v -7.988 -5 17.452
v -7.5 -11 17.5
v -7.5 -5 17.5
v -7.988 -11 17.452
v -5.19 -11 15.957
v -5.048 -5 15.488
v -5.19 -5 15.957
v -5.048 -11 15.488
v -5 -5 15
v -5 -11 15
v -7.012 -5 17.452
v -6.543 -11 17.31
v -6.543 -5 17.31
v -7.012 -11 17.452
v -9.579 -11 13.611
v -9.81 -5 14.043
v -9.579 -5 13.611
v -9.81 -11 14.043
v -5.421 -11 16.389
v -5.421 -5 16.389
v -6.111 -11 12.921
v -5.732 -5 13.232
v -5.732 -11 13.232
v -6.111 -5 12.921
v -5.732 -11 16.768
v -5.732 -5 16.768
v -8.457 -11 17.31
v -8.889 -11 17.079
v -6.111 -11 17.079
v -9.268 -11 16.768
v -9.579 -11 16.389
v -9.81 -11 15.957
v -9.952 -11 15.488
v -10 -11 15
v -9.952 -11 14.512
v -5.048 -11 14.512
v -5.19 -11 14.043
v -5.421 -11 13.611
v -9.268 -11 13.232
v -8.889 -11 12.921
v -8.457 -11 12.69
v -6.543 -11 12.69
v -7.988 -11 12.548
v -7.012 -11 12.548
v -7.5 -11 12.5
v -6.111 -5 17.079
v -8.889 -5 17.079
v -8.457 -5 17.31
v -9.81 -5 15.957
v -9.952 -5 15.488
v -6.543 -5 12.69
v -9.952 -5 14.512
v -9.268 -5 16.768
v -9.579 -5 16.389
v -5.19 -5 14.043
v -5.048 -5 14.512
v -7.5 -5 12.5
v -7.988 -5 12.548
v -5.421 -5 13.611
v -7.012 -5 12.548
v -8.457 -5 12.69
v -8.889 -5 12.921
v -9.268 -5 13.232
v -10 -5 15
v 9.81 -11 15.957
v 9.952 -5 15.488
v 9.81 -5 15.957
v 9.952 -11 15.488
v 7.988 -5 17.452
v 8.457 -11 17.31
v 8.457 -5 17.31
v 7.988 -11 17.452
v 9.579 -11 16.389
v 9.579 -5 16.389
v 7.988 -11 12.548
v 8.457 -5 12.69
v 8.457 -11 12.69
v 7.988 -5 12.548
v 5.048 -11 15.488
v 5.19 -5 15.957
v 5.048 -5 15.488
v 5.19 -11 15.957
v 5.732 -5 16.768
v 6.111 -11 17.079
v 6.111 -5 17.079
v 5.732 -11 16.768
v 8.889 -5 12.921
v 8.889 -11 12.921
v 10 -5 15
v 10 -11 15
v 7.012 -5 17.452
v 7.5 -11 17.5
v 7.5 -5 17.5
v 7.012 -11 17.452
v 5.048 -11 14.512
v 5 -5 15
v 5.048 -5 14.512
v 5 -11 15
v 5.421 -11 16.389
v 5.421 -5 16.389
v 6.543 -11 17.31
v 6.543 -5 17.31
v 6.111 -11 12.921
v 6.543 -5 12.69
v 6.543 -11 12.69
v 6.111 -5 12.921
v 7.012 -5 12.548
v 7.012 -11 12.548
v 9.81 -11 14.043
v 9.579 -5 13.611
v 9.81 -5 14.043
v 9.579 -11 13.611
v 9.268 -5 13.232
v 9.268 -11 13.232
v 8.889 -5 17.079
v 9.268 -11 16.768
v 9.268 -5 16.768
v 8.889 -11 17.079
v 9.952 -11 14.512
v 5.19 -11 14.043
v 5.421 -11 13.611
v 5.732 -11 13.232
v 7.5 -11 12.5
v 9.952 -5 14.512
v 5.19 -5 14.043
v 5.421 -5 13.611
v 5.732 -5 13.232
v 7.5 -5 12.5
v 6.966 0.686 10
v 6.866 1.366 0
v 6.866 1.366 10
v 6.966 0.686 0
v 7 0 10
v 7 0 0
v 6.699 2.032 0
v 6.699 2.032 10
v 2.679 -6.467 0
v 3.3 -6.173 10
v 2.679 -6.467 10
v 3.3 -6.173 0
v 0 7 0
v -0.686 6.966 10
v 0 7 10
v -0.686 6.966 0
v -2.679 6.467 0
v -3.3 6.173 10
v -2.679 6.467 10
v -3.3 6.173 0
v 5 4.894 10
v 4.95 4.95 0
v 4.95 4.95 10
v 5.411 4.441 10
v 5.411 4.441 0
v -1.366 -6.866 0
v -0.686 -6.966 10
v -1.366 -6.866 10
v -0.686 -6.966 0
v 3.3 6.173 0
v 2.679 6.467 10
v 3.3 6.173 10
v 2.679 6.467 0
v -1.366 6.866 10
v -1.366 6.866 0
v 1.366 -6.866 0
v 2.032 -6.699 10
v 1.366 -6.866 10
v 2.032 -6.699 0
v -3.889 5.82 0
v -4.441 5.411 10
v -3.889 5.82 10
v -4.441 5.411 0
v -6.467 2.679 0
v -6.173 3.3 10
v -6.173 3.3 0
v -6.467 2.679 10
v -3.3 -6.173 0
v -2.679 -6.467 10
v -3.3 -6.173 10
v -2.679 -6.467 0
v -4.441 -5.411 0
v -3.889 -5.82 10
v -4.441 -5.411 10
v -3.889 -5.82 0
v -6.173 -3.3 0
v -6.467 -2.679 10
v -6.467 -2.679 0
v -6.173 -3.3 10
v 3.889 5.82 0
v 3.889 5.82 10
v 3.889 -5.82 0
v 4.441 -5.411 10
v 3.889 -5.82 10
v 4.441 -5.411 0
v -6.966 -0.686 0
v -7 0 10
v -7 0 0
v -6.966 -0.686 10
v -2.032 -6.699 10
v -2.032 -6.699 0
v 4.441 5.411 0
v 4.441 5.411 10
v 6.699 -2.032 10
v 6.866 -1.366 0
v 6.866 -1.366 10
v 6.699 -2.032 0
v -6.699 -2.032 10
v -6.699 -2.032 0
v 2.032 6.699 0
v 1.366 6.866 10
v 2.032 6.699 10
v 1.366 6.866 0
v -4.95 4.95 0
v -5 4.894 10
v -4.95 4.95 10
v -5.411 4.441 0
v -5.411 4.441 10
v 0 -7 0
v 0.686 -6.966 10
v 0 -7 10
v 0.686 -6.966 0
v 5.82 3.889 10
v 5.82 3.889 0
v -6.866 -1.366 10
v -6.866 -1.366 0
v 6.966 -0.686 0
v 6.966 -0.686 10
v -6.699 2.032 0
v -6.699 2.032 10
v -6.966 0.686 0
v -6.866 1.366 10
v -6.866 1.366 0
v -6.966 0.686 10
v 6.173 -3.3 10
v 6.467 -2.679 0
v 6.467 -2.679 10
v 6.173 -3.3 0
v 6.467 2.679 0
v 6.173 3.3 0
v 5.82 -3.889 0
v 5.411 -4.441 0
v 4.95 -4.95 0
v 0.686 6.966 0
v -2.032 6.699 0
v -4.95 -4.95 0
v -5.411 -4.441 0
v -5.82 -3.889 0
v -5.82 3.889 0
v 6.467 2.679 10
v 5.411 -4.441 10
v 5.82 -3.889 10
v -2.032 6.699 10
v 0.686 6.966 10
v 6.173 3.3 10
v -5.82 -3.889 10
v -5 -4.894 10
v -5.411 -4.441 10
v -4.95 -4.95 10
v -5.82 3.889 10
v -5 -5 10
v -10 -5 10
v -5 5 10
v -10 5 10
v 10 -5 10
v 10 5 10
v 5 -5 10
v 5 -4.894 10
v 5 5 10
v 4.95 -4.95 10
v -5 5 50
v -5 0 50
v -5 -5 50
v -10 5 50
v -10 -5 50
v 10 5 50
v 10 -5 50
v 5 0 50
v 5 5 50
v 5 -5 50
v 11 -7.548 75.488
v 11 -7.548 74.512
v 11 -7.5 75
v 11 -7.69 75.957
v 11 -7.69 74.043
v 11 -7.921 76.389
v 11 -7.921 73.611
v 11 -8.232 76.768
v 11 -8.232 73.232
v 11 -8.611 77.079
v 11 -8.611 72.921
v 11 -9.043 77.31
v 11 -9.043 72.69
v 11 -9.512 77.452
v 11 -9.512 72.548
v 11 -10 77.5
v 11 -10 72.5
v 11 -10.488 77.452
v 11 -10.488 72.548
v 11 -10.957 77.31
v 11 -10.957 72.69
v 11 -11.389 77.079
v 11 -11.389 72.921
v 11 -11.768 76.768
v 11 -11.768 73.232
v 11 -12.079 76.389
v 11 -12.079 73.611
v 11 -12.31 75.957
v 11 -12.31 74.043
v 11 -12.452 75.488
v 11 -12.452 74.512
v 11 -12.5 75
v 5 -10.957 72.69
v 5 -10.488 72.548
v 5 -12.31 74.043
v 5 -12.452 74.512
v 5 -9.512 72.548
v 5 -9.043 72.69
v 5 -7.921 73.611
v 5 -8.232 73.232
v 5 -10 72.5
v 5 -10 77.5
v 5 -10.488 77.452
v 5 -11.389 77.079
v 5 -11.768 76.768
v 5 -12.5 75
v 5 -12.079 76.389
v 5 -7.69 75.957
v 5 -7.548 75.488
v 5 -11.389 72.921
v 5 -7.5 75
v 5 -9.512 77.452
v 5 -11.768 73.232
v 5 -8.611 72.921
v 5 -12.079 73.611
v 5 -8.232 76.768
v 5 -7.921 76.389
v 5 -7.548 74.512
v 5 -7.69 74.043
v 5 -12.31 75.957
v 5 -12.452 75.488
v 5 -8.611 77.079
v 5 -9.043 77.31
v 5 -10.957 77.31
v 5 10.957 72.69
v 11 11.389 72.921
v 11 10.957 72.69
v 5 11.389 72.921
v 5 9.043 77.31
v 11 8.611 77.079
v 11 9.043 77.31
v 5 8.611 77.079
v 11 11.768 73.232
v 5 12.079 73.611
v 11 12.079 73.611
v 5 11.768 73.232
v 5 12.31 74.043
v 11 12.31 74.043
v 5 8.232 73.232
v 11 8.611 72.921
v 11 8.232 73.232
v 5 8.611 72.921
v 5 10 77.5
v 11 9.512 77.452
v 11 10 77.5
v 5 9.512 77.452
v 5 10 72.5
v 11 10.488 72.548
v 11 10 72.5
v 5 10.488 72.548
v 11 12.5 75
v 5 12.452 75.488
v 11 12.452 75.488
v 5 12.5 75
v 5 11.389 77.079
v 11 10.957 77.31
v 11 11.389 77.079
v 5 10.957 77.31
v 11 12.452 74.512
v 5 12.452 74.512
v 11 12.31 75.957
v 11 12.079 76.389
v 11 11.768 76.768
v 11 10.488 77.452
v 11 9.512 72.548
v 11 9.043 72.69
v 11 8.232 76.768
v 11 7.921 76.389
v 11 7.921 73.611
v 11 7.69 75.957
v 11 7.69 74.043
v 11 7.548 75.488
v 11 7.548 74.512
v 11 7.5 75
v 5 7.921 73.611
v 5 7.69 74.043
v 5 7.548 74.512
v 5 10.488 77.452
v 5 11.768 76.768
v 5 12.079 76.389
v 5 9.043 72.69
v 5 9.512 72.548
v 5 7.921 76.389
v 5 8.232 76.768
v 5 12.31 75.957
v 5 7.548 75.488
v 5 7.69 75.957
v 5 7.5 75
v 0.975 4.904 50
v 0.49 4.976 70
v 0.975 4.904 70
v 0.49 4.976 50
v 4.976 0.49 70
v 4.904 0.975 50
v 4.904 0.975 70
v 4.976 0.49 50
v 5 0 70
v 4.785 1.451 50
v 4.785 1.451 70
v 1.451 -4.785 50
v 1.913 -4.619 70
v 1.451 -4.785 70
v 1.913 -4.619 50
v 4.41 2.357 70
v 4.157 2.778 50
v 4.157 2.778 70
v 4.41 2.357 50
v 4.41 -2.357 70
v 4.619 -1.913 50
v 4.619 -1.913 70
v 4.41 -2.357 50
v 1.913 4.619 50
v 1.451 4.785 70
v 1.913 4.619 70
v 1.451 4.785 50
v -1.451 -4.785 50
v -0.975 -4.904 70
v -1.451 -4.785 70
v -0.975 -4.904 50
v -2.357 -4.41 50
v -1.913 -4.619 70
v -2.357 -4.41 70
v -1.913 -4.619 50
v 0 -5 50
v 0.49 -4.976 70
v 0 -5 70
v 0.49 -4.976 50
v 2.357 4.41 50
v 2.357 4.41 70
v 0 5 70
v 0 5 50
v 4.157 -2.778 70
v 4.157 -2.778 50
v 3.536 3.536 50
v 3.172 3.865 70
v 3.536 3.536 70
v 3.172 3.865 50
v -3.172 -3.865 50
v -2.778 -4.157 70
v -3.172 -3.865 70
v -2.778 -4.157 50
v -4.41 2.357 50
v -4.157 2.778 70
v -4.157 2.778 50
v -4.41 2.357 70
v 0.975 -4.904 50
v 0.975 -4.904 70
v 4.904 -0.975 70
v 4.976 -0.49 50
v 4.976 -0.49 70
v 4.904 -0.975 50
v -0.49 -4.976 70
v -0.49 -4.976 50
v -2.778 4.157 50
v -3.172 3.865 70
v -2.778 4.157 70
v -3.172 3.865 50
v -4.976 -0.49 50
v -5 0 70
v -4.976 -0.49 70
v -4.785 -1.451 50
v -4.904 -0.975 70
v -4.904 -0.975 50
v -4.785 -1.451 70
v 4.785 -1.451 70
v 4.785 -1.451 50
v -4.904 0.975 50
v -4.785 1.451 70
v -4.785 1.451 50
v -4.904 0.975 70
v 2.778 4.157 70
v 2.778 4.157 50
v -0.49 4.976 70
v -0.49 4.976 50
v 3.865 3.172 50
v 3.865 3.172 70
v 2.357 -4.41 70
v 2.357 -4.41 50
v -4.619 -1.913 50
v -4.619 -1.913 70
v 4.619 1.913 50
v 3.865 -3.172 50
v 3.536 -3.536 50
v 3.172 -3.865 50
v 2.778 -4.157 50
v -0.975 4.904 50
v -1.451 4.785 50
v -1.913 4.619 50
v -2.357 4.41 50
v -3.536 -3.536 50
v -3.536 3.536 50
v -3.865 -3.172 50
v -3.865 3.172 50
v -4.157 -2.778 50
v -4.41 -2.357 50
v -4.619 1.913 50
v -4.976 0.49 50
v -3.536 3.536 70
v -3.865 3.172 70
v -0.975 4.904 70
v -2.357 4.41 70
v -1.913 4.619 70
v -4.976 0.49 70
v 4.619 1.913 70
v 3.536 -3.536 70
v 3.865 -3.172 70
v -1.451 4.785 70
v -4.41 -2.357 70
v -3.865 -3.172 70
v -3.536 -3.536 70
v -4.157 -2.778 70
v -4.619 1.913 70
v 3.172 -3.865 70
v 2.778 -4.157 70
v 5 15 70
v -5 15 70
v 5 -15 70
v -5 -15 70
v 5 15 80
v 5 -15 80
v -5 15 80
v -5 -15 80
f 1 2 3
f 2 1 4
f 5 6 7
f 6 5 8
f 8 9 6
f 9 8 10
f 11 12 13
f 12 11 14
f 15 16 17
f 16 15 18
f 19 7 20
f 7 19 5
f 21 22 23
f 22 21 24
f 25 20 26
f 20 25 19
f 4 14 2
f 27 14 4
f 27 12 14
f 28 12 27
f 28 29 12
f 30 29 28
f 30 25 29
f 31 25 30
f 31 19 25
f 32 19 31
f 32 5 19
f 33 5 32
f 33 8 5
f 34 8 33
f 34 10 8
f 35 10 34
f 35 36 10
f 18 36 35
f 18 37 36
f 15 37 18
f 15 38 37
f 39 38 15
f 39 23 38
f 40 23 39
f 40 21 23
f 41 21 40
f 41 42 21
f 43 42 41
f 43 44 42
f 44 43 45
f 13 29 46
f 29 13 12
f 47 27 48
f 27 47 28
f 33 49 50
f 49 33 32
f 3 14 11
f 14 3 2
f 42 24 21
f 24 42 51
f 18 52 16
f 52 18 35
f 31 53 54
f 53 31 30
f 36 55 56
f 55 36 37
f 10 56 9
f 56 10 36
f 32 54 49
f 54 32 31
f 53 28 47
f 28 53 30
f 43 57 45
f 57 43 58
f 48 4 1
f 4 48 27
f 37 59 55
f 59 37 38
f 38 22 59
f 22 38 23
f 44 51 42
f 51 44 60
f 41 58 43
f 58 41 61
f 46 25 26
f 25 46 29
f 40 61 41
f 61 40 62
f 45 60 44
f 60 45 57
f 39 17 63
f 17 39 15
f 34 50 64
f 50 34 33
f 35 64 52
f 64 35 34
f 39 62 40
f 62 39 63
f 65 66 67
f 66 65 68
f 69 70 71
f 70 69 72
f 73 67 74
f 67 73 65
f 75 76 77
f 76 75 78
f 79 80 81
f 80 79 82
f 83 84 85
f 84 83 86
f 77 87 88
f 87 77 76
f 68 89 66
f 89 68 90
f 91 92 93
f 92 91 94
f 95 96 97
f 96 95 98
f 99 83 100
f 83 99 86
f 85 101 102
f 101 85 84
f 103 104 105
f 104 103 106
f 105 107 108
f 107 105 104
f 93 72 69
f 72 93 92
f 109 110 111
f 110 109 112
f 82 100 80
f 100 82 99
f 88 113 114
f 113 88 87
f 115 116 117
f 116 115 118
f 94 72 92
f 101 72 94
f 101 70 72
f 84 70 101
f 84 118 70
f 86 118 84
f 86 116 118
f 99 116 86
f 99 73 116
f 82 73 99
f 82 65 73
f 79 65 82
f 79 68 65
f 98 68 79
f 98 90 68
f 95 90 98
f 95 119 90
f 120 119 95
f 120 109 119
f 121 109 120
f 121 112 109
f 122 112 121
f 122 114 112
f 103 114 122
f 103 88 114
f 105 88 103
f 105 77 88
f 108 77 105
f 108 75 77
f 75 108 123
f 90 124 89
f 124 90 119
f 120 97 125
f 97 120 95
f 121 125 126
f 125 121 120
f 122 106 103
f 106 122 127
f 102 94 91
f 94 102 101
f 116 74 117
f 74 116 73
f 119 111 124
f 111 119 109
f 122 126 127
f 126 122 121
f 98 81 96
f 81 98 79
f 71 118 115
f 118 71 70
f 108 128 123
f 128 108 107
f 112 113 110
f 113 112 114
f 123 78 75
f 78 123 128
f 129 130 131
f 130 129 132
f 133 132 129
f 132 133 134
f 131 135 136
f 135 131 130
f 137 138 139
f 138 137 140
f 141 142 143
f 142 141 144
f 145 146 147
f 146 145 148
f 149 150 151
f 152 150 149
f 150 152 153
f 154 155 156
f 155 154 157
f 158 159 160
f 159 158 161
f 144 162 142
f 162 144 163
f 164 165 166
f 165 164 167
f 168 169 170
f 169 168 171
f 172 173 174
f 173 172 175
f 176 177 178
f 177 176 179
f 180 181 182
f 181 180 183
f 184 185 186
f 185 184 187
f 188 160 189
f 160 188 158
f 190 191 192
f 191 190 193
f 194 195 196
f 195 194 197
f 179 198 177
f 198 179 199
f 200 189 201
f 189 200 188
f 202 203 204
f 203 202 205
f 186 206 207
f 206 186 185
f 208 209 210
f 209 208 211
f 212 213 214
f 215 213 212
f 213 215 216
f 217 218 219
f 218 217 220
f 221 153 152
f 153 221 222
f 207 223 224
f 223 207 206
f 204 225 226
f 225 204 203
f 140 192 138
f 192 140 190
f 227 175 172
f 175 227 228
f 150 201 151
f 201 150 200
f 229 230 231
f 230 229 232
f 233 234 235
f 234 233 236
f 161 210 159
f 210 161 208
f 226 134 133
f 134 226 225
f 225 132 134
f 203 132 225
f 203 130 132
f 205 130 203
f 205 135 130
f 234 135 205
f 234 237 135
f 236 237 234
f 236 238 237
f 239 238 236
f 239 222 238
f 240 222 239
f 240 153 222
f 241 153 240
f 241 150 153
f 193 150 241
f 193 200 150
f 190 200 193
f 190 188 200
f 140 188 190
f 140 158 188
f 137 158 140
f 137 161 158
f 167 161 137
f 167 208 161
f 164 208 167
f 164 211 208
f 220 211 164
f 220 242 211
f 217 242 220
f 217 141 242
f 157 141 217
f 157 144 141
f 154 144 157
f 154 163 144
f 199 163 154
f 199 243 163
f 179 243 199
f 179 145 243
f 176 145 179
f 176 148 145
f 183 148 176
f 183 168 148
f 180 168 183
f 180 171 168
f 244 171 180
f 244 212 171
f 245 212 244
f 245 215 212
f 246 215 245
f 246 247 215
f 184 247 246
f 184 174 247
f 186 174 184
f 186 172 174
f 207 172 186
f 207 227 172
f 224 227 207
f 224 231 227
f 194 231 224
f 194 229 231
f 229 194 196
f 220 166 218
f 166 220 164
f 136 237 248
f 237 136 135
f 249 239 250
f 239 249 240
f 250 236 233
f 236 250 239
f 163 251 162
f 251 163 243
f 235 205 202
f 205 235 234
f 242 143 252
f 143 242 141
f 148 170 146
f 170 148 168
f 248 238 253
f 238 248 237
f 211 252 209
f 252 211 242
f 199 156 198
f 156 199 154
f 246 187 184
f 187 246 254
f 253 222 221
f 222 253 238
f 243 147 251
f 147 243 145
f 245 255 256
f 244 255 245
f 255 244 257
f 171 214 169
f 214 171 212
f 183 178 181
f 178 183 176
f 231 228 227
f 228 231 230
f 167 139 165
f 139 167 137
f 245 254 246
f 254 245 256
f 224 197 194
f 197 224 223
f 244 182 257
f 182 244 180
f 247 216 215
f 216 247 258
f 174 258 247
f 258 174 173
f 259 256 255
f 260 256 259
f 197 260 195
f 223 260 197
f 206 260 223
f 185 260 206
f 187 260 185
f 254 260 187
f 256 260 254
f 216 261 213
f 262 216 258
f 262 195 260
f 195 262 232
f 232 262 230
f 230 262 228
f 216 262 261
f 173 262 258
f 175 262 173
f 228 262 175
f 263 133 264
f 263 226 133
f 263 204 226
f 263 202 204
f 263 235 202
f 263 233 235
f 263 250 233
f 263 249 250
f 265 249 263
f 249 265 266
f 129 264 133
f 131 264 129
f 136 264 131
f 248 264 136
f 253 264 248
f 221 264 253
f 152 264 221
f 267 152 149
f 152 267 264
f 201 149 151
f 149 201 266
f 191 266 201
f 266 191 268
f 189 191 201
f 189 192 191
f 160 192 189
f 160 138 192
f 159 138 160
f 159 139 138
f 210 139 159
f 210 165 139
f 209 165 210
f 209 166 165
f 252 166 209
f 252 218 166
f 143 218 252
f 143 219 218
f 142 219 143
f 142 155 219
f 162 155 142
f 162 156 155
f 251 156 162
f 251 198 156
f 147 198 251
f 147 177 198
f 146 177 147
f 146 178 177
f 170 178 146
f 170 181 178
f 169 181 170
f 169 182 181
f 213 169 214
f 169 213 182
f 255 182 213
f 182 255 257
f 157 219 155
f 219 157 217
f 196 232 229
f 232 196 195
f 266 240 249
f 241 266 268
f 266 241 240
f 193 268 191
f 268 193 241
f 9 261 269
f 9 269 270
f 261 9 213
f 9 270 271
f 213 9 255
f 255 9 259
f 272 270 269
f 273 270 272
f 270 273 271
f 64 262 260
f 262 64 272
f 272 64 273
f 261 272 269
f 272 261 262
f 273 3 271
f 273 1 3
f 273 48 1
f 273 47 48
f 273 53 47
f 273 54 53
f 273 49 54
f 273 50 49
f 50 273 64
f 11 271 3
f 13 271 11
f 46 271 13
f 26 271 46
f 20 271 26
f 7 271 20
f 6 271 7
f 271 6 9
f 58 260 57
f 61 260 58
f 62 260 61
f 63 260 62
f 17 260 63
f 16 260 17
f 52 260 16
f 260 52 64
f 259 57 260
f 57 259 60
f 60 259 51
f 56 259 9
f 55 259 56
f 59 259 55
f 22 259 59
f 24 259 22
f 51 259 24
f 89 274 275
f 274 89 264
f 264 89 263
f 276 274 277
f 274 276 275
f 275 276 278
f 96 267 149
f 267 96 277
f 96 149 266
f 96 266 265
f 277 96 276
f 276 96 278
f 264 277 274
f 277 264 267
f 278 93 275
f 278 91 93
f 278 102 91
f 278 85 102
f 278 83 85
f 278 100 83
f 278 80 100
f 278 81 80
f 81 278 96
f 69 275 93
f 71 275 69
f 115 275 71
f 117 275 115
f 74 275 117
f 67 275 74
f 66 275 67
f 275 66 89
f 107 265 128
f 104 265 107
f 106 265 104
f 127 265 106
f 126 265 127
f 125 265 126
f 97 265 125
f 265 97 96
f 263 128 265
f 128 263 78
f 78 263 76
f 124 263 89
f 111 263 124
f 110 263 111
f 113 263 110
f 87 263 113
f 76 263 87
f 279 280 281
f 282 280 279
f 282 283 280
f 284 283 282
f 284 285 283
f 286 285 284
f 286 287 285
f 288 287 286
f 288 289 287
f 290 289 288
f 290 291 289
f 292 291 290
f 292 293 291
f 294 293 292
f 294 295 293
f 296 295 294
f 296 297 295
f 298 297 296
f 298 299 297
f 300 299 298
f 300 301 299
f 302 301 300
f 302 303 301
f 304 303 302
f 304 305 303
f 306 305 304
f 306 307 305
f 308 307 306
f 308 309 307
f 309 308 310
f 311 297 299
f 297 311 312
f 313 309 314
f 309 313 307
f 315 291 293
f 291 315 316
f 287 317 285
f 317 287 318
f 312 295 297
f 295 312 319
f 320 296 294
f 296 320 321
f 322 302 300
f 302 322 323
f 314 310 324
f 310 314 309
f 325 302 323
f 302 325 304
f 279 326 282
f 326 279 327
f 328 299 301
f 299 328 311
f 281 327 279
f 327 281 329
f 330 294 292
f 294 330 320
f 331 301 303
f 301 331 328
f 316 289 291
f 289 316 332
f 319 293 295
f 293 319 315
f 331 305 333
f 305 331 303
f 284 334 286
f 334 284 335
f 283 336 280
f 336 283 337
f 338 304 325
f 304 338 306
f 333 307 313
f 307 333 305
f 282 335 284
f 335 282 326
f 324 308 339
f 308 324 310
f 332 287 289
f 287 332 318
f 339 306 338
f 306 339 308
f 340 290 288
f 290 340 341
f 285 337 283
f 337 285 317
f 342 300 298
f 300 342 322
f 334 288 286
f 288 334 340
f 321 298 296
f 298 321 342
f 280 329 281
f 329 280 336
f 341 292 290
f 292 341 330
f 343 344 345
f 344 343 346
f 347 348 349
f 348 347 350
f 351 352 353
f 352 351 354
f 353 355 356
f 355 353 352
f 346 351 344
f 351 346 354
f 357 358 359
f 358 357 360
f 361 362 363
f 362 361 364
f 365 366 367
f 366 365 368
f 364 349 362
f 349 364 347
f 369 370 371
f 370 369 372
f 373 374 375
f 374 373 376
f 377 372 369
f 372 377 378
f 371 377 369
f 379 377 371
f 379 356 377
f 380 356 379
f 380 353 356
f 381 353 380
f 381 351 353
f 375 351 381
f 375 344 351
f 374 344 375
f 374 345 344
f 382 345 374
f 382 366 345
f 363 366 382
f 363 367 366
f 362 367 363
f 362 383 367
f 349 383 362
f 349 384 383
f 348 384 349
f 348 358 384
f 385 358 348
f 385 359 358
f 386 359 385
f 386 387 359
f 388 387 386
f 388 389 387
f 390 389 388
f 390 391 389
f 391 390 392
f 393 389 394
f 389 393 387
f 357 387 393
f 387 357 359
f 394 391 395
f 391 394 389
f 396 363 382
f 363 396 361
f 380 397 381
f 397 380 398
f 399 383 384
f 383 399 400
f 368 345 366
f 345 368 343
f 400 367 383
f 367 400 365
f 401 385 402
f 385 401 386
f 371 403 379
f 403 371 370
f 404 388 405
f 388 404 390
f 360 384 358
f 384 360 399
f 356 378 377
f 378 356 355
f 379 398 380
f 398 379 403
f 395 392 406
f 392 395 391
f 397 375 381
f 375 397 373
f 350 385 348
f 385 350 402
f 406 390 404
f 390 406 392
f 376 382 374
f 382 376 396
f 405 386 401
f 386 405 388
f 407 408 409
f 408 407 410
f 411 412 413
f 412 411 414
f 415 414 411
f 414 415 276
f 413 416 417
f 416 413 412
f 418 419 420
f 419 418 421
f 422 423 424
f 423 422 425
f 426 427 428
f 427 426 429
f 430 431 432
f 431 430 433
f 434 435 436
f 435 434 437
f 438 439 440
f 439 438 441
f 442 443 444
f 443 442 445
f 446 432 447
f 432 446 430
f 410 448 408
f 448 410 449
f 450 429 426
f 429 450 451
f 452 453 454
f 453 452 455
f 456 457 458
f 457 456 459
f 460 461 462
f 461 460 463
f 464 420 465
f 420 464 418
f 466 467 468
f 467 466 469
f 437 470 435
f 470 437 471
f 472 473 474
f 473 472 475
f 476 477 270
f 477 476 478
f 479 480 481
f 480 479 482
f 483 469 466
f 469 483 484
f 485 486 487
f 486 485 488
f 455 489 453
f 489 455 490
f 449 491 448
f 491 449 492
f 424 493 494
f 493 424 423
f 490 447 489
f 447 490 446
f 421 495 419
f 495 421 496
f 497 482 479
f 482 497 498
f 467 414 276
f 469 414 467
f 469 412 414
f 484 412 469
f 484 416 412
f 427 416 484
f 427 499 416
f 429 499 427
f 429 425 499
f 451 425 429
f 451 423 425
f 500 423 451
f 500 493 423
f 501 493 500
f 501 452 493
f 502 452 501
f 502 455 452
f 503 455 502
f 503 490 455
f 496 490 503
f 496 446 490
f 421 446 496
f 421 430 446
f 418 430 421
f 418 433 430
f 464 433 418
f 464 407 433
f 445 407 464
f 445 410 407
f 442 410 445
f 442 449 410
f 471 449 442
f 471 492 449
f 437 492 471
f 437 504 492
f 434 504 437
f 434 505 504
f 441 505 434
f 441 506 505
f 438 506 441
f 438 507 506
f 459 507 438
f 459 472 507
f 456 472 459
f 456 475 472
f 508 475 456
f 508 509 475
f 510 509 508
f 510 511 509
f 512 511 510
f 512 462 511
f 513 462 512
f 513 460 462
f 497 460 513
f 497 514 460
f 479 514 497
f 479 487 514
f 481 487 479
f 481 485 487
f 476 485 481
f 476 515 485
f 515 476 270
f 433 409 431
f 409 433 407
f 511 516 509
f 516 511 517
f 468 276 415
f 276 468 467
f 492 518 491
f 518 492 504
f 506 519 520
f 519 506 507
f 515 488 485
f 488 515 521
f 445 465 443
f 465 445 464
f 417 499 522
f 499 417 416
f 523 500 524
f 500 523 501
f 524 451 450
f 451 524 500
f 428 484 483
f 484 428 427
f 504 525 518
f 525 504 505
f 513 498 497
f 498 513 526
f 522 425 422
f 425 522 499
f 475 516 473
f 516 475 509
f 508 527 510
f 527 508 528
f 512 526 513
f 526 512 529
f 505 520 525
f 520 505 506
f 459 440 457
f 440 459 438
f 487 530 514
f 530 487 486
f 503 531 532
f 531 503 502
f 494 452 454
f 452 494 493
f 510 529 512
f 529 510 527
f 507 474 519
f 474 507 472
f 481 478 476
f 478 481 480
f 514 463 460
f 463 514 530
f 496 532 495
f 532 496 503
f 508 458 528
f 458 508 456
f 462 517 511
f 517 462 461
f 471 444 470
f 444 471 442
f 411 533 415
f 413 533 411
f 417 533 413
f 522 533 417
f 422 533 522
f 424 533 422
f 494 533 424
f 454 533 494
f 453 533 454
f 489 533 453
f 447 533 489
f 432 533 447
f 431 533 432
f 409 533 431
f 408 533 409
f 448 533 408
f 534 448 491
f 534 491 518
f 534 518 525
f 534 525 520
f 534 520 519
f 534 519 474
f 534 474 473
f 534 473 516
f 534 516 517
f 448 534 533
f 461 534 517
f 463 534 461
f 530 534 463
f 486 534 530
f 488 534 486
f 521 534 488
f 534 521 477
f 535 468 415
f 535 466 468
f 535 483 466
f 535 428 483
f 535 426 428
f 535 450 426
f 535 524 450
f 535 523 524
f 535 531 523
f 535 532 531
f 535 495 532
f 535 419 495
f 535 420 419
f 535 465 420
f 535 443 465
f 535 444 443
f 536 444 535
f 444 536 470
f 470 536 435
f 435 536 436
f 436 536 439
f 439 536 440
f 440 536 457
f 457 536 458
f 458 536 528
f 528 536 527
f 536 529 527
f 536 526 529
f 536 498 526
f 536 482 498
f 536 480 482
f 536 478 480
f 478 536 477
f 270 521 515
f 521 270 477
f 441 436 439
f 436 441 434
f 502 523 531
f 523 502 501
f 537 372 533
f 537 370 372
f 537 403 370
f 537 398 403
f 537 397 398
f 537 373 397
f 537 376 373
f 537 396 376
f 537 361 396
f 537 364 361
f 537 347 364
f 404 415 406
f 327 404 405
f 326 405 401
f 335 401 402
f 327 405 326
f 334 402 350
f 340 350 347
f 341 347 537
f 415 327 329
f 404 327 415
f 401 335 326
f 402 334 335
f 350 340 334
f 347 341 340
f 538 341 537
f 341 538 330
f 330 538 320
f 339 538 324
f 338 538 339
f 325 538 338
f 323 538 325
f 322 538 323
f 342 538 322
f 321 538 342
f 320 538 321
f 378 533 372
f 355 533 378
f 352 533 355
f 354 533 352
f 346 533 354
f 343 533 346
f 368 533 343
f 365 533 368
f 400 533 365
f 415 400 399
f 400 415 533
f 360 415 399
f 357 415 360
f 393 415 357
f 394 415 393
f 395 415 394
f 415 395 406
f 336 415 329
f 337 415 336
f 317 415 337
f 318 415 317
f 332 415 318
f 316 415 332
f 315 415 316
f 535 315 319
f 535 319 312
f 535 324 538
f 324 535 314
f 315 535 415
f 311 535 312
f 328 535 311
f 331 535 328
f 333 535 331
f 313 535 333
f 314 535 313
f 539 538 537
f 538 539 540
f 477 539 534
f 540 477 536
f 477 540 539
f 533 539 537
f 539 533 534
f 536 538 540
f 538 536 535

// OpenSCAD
// Parameters
fork_arm_length = 40;
fork_arm_thickness = 5;
fork_arm_width = 10;
fork_gap = 10;
fork_base_radius = 7;
fork_base_height = 10;
hole_radius = 2.5;
hole_offset = 5;

pin_block_length = fork_gap;
pin_block_width = fork_arm_width * 2 + fork_gap;
pin_block_height = 10;
pin_shaft_radius = 5;
pin_shaft_height = 20;

// Fork Head
module fork_head() {
    // Base cylinder
    translate([0, 0, 0])
        cylinder(h = fork_base_height, r = fork_base_radius, $fn = 64);

    // Left arm
    translate([-fork_gap/2 - fork_arm_thickness, -fork_arm_width/2, fork_base_height])
        cube([fork_arm_thickness, fork_arm_width, fork_arm_length]);

    // Right arm
    translate([fork_gap/2, -fork_arm_width/2, fork_base_height])
        cube([fork_arm_thickness, fork_arm_width, fork_arm_length]);

    // Holes in arms
    for (x = [-fork_gap/2 - fork_arm_thickness/2, fork_gap/2 + fork_arm_thickness/2])
        translate([x, 0, fork_base_height + hole_offset])
            rotate([90, 0, 0])
                cylinder(h = fork_arm_width + 1, r = hole_radius, $fn = 32);
}

// Pin Head
module pin_head() {
    // Shaft
    translate([0, 0, fork_base_height + fork_arm_length])
        cylinder(h = pin_shaft_height, r = pin_shaft_radius, $fn = 64);

    // Block
    translate([-pin_block_length/2, -pin_block_width/2, fork_base_height + fork_arm_length + pin_shaft_height])
        cube([pin_block_length, pin_block_width, pin_block_height]);

    // Holes in block
    for (y = [-pin_block_width/2 + hole_offset, pin_block_width/2 - hole_offset])
        translate([0, y, fork_base_height + fork_arm_length + pin_shaft_height + pin_block_height/2])
            rotate([0, 90, 0])
                cylinder(h = pin_block_length + 1, r = hole_radius, $fn = 32);
}

// Assembly
fork_head();
pin_head();
